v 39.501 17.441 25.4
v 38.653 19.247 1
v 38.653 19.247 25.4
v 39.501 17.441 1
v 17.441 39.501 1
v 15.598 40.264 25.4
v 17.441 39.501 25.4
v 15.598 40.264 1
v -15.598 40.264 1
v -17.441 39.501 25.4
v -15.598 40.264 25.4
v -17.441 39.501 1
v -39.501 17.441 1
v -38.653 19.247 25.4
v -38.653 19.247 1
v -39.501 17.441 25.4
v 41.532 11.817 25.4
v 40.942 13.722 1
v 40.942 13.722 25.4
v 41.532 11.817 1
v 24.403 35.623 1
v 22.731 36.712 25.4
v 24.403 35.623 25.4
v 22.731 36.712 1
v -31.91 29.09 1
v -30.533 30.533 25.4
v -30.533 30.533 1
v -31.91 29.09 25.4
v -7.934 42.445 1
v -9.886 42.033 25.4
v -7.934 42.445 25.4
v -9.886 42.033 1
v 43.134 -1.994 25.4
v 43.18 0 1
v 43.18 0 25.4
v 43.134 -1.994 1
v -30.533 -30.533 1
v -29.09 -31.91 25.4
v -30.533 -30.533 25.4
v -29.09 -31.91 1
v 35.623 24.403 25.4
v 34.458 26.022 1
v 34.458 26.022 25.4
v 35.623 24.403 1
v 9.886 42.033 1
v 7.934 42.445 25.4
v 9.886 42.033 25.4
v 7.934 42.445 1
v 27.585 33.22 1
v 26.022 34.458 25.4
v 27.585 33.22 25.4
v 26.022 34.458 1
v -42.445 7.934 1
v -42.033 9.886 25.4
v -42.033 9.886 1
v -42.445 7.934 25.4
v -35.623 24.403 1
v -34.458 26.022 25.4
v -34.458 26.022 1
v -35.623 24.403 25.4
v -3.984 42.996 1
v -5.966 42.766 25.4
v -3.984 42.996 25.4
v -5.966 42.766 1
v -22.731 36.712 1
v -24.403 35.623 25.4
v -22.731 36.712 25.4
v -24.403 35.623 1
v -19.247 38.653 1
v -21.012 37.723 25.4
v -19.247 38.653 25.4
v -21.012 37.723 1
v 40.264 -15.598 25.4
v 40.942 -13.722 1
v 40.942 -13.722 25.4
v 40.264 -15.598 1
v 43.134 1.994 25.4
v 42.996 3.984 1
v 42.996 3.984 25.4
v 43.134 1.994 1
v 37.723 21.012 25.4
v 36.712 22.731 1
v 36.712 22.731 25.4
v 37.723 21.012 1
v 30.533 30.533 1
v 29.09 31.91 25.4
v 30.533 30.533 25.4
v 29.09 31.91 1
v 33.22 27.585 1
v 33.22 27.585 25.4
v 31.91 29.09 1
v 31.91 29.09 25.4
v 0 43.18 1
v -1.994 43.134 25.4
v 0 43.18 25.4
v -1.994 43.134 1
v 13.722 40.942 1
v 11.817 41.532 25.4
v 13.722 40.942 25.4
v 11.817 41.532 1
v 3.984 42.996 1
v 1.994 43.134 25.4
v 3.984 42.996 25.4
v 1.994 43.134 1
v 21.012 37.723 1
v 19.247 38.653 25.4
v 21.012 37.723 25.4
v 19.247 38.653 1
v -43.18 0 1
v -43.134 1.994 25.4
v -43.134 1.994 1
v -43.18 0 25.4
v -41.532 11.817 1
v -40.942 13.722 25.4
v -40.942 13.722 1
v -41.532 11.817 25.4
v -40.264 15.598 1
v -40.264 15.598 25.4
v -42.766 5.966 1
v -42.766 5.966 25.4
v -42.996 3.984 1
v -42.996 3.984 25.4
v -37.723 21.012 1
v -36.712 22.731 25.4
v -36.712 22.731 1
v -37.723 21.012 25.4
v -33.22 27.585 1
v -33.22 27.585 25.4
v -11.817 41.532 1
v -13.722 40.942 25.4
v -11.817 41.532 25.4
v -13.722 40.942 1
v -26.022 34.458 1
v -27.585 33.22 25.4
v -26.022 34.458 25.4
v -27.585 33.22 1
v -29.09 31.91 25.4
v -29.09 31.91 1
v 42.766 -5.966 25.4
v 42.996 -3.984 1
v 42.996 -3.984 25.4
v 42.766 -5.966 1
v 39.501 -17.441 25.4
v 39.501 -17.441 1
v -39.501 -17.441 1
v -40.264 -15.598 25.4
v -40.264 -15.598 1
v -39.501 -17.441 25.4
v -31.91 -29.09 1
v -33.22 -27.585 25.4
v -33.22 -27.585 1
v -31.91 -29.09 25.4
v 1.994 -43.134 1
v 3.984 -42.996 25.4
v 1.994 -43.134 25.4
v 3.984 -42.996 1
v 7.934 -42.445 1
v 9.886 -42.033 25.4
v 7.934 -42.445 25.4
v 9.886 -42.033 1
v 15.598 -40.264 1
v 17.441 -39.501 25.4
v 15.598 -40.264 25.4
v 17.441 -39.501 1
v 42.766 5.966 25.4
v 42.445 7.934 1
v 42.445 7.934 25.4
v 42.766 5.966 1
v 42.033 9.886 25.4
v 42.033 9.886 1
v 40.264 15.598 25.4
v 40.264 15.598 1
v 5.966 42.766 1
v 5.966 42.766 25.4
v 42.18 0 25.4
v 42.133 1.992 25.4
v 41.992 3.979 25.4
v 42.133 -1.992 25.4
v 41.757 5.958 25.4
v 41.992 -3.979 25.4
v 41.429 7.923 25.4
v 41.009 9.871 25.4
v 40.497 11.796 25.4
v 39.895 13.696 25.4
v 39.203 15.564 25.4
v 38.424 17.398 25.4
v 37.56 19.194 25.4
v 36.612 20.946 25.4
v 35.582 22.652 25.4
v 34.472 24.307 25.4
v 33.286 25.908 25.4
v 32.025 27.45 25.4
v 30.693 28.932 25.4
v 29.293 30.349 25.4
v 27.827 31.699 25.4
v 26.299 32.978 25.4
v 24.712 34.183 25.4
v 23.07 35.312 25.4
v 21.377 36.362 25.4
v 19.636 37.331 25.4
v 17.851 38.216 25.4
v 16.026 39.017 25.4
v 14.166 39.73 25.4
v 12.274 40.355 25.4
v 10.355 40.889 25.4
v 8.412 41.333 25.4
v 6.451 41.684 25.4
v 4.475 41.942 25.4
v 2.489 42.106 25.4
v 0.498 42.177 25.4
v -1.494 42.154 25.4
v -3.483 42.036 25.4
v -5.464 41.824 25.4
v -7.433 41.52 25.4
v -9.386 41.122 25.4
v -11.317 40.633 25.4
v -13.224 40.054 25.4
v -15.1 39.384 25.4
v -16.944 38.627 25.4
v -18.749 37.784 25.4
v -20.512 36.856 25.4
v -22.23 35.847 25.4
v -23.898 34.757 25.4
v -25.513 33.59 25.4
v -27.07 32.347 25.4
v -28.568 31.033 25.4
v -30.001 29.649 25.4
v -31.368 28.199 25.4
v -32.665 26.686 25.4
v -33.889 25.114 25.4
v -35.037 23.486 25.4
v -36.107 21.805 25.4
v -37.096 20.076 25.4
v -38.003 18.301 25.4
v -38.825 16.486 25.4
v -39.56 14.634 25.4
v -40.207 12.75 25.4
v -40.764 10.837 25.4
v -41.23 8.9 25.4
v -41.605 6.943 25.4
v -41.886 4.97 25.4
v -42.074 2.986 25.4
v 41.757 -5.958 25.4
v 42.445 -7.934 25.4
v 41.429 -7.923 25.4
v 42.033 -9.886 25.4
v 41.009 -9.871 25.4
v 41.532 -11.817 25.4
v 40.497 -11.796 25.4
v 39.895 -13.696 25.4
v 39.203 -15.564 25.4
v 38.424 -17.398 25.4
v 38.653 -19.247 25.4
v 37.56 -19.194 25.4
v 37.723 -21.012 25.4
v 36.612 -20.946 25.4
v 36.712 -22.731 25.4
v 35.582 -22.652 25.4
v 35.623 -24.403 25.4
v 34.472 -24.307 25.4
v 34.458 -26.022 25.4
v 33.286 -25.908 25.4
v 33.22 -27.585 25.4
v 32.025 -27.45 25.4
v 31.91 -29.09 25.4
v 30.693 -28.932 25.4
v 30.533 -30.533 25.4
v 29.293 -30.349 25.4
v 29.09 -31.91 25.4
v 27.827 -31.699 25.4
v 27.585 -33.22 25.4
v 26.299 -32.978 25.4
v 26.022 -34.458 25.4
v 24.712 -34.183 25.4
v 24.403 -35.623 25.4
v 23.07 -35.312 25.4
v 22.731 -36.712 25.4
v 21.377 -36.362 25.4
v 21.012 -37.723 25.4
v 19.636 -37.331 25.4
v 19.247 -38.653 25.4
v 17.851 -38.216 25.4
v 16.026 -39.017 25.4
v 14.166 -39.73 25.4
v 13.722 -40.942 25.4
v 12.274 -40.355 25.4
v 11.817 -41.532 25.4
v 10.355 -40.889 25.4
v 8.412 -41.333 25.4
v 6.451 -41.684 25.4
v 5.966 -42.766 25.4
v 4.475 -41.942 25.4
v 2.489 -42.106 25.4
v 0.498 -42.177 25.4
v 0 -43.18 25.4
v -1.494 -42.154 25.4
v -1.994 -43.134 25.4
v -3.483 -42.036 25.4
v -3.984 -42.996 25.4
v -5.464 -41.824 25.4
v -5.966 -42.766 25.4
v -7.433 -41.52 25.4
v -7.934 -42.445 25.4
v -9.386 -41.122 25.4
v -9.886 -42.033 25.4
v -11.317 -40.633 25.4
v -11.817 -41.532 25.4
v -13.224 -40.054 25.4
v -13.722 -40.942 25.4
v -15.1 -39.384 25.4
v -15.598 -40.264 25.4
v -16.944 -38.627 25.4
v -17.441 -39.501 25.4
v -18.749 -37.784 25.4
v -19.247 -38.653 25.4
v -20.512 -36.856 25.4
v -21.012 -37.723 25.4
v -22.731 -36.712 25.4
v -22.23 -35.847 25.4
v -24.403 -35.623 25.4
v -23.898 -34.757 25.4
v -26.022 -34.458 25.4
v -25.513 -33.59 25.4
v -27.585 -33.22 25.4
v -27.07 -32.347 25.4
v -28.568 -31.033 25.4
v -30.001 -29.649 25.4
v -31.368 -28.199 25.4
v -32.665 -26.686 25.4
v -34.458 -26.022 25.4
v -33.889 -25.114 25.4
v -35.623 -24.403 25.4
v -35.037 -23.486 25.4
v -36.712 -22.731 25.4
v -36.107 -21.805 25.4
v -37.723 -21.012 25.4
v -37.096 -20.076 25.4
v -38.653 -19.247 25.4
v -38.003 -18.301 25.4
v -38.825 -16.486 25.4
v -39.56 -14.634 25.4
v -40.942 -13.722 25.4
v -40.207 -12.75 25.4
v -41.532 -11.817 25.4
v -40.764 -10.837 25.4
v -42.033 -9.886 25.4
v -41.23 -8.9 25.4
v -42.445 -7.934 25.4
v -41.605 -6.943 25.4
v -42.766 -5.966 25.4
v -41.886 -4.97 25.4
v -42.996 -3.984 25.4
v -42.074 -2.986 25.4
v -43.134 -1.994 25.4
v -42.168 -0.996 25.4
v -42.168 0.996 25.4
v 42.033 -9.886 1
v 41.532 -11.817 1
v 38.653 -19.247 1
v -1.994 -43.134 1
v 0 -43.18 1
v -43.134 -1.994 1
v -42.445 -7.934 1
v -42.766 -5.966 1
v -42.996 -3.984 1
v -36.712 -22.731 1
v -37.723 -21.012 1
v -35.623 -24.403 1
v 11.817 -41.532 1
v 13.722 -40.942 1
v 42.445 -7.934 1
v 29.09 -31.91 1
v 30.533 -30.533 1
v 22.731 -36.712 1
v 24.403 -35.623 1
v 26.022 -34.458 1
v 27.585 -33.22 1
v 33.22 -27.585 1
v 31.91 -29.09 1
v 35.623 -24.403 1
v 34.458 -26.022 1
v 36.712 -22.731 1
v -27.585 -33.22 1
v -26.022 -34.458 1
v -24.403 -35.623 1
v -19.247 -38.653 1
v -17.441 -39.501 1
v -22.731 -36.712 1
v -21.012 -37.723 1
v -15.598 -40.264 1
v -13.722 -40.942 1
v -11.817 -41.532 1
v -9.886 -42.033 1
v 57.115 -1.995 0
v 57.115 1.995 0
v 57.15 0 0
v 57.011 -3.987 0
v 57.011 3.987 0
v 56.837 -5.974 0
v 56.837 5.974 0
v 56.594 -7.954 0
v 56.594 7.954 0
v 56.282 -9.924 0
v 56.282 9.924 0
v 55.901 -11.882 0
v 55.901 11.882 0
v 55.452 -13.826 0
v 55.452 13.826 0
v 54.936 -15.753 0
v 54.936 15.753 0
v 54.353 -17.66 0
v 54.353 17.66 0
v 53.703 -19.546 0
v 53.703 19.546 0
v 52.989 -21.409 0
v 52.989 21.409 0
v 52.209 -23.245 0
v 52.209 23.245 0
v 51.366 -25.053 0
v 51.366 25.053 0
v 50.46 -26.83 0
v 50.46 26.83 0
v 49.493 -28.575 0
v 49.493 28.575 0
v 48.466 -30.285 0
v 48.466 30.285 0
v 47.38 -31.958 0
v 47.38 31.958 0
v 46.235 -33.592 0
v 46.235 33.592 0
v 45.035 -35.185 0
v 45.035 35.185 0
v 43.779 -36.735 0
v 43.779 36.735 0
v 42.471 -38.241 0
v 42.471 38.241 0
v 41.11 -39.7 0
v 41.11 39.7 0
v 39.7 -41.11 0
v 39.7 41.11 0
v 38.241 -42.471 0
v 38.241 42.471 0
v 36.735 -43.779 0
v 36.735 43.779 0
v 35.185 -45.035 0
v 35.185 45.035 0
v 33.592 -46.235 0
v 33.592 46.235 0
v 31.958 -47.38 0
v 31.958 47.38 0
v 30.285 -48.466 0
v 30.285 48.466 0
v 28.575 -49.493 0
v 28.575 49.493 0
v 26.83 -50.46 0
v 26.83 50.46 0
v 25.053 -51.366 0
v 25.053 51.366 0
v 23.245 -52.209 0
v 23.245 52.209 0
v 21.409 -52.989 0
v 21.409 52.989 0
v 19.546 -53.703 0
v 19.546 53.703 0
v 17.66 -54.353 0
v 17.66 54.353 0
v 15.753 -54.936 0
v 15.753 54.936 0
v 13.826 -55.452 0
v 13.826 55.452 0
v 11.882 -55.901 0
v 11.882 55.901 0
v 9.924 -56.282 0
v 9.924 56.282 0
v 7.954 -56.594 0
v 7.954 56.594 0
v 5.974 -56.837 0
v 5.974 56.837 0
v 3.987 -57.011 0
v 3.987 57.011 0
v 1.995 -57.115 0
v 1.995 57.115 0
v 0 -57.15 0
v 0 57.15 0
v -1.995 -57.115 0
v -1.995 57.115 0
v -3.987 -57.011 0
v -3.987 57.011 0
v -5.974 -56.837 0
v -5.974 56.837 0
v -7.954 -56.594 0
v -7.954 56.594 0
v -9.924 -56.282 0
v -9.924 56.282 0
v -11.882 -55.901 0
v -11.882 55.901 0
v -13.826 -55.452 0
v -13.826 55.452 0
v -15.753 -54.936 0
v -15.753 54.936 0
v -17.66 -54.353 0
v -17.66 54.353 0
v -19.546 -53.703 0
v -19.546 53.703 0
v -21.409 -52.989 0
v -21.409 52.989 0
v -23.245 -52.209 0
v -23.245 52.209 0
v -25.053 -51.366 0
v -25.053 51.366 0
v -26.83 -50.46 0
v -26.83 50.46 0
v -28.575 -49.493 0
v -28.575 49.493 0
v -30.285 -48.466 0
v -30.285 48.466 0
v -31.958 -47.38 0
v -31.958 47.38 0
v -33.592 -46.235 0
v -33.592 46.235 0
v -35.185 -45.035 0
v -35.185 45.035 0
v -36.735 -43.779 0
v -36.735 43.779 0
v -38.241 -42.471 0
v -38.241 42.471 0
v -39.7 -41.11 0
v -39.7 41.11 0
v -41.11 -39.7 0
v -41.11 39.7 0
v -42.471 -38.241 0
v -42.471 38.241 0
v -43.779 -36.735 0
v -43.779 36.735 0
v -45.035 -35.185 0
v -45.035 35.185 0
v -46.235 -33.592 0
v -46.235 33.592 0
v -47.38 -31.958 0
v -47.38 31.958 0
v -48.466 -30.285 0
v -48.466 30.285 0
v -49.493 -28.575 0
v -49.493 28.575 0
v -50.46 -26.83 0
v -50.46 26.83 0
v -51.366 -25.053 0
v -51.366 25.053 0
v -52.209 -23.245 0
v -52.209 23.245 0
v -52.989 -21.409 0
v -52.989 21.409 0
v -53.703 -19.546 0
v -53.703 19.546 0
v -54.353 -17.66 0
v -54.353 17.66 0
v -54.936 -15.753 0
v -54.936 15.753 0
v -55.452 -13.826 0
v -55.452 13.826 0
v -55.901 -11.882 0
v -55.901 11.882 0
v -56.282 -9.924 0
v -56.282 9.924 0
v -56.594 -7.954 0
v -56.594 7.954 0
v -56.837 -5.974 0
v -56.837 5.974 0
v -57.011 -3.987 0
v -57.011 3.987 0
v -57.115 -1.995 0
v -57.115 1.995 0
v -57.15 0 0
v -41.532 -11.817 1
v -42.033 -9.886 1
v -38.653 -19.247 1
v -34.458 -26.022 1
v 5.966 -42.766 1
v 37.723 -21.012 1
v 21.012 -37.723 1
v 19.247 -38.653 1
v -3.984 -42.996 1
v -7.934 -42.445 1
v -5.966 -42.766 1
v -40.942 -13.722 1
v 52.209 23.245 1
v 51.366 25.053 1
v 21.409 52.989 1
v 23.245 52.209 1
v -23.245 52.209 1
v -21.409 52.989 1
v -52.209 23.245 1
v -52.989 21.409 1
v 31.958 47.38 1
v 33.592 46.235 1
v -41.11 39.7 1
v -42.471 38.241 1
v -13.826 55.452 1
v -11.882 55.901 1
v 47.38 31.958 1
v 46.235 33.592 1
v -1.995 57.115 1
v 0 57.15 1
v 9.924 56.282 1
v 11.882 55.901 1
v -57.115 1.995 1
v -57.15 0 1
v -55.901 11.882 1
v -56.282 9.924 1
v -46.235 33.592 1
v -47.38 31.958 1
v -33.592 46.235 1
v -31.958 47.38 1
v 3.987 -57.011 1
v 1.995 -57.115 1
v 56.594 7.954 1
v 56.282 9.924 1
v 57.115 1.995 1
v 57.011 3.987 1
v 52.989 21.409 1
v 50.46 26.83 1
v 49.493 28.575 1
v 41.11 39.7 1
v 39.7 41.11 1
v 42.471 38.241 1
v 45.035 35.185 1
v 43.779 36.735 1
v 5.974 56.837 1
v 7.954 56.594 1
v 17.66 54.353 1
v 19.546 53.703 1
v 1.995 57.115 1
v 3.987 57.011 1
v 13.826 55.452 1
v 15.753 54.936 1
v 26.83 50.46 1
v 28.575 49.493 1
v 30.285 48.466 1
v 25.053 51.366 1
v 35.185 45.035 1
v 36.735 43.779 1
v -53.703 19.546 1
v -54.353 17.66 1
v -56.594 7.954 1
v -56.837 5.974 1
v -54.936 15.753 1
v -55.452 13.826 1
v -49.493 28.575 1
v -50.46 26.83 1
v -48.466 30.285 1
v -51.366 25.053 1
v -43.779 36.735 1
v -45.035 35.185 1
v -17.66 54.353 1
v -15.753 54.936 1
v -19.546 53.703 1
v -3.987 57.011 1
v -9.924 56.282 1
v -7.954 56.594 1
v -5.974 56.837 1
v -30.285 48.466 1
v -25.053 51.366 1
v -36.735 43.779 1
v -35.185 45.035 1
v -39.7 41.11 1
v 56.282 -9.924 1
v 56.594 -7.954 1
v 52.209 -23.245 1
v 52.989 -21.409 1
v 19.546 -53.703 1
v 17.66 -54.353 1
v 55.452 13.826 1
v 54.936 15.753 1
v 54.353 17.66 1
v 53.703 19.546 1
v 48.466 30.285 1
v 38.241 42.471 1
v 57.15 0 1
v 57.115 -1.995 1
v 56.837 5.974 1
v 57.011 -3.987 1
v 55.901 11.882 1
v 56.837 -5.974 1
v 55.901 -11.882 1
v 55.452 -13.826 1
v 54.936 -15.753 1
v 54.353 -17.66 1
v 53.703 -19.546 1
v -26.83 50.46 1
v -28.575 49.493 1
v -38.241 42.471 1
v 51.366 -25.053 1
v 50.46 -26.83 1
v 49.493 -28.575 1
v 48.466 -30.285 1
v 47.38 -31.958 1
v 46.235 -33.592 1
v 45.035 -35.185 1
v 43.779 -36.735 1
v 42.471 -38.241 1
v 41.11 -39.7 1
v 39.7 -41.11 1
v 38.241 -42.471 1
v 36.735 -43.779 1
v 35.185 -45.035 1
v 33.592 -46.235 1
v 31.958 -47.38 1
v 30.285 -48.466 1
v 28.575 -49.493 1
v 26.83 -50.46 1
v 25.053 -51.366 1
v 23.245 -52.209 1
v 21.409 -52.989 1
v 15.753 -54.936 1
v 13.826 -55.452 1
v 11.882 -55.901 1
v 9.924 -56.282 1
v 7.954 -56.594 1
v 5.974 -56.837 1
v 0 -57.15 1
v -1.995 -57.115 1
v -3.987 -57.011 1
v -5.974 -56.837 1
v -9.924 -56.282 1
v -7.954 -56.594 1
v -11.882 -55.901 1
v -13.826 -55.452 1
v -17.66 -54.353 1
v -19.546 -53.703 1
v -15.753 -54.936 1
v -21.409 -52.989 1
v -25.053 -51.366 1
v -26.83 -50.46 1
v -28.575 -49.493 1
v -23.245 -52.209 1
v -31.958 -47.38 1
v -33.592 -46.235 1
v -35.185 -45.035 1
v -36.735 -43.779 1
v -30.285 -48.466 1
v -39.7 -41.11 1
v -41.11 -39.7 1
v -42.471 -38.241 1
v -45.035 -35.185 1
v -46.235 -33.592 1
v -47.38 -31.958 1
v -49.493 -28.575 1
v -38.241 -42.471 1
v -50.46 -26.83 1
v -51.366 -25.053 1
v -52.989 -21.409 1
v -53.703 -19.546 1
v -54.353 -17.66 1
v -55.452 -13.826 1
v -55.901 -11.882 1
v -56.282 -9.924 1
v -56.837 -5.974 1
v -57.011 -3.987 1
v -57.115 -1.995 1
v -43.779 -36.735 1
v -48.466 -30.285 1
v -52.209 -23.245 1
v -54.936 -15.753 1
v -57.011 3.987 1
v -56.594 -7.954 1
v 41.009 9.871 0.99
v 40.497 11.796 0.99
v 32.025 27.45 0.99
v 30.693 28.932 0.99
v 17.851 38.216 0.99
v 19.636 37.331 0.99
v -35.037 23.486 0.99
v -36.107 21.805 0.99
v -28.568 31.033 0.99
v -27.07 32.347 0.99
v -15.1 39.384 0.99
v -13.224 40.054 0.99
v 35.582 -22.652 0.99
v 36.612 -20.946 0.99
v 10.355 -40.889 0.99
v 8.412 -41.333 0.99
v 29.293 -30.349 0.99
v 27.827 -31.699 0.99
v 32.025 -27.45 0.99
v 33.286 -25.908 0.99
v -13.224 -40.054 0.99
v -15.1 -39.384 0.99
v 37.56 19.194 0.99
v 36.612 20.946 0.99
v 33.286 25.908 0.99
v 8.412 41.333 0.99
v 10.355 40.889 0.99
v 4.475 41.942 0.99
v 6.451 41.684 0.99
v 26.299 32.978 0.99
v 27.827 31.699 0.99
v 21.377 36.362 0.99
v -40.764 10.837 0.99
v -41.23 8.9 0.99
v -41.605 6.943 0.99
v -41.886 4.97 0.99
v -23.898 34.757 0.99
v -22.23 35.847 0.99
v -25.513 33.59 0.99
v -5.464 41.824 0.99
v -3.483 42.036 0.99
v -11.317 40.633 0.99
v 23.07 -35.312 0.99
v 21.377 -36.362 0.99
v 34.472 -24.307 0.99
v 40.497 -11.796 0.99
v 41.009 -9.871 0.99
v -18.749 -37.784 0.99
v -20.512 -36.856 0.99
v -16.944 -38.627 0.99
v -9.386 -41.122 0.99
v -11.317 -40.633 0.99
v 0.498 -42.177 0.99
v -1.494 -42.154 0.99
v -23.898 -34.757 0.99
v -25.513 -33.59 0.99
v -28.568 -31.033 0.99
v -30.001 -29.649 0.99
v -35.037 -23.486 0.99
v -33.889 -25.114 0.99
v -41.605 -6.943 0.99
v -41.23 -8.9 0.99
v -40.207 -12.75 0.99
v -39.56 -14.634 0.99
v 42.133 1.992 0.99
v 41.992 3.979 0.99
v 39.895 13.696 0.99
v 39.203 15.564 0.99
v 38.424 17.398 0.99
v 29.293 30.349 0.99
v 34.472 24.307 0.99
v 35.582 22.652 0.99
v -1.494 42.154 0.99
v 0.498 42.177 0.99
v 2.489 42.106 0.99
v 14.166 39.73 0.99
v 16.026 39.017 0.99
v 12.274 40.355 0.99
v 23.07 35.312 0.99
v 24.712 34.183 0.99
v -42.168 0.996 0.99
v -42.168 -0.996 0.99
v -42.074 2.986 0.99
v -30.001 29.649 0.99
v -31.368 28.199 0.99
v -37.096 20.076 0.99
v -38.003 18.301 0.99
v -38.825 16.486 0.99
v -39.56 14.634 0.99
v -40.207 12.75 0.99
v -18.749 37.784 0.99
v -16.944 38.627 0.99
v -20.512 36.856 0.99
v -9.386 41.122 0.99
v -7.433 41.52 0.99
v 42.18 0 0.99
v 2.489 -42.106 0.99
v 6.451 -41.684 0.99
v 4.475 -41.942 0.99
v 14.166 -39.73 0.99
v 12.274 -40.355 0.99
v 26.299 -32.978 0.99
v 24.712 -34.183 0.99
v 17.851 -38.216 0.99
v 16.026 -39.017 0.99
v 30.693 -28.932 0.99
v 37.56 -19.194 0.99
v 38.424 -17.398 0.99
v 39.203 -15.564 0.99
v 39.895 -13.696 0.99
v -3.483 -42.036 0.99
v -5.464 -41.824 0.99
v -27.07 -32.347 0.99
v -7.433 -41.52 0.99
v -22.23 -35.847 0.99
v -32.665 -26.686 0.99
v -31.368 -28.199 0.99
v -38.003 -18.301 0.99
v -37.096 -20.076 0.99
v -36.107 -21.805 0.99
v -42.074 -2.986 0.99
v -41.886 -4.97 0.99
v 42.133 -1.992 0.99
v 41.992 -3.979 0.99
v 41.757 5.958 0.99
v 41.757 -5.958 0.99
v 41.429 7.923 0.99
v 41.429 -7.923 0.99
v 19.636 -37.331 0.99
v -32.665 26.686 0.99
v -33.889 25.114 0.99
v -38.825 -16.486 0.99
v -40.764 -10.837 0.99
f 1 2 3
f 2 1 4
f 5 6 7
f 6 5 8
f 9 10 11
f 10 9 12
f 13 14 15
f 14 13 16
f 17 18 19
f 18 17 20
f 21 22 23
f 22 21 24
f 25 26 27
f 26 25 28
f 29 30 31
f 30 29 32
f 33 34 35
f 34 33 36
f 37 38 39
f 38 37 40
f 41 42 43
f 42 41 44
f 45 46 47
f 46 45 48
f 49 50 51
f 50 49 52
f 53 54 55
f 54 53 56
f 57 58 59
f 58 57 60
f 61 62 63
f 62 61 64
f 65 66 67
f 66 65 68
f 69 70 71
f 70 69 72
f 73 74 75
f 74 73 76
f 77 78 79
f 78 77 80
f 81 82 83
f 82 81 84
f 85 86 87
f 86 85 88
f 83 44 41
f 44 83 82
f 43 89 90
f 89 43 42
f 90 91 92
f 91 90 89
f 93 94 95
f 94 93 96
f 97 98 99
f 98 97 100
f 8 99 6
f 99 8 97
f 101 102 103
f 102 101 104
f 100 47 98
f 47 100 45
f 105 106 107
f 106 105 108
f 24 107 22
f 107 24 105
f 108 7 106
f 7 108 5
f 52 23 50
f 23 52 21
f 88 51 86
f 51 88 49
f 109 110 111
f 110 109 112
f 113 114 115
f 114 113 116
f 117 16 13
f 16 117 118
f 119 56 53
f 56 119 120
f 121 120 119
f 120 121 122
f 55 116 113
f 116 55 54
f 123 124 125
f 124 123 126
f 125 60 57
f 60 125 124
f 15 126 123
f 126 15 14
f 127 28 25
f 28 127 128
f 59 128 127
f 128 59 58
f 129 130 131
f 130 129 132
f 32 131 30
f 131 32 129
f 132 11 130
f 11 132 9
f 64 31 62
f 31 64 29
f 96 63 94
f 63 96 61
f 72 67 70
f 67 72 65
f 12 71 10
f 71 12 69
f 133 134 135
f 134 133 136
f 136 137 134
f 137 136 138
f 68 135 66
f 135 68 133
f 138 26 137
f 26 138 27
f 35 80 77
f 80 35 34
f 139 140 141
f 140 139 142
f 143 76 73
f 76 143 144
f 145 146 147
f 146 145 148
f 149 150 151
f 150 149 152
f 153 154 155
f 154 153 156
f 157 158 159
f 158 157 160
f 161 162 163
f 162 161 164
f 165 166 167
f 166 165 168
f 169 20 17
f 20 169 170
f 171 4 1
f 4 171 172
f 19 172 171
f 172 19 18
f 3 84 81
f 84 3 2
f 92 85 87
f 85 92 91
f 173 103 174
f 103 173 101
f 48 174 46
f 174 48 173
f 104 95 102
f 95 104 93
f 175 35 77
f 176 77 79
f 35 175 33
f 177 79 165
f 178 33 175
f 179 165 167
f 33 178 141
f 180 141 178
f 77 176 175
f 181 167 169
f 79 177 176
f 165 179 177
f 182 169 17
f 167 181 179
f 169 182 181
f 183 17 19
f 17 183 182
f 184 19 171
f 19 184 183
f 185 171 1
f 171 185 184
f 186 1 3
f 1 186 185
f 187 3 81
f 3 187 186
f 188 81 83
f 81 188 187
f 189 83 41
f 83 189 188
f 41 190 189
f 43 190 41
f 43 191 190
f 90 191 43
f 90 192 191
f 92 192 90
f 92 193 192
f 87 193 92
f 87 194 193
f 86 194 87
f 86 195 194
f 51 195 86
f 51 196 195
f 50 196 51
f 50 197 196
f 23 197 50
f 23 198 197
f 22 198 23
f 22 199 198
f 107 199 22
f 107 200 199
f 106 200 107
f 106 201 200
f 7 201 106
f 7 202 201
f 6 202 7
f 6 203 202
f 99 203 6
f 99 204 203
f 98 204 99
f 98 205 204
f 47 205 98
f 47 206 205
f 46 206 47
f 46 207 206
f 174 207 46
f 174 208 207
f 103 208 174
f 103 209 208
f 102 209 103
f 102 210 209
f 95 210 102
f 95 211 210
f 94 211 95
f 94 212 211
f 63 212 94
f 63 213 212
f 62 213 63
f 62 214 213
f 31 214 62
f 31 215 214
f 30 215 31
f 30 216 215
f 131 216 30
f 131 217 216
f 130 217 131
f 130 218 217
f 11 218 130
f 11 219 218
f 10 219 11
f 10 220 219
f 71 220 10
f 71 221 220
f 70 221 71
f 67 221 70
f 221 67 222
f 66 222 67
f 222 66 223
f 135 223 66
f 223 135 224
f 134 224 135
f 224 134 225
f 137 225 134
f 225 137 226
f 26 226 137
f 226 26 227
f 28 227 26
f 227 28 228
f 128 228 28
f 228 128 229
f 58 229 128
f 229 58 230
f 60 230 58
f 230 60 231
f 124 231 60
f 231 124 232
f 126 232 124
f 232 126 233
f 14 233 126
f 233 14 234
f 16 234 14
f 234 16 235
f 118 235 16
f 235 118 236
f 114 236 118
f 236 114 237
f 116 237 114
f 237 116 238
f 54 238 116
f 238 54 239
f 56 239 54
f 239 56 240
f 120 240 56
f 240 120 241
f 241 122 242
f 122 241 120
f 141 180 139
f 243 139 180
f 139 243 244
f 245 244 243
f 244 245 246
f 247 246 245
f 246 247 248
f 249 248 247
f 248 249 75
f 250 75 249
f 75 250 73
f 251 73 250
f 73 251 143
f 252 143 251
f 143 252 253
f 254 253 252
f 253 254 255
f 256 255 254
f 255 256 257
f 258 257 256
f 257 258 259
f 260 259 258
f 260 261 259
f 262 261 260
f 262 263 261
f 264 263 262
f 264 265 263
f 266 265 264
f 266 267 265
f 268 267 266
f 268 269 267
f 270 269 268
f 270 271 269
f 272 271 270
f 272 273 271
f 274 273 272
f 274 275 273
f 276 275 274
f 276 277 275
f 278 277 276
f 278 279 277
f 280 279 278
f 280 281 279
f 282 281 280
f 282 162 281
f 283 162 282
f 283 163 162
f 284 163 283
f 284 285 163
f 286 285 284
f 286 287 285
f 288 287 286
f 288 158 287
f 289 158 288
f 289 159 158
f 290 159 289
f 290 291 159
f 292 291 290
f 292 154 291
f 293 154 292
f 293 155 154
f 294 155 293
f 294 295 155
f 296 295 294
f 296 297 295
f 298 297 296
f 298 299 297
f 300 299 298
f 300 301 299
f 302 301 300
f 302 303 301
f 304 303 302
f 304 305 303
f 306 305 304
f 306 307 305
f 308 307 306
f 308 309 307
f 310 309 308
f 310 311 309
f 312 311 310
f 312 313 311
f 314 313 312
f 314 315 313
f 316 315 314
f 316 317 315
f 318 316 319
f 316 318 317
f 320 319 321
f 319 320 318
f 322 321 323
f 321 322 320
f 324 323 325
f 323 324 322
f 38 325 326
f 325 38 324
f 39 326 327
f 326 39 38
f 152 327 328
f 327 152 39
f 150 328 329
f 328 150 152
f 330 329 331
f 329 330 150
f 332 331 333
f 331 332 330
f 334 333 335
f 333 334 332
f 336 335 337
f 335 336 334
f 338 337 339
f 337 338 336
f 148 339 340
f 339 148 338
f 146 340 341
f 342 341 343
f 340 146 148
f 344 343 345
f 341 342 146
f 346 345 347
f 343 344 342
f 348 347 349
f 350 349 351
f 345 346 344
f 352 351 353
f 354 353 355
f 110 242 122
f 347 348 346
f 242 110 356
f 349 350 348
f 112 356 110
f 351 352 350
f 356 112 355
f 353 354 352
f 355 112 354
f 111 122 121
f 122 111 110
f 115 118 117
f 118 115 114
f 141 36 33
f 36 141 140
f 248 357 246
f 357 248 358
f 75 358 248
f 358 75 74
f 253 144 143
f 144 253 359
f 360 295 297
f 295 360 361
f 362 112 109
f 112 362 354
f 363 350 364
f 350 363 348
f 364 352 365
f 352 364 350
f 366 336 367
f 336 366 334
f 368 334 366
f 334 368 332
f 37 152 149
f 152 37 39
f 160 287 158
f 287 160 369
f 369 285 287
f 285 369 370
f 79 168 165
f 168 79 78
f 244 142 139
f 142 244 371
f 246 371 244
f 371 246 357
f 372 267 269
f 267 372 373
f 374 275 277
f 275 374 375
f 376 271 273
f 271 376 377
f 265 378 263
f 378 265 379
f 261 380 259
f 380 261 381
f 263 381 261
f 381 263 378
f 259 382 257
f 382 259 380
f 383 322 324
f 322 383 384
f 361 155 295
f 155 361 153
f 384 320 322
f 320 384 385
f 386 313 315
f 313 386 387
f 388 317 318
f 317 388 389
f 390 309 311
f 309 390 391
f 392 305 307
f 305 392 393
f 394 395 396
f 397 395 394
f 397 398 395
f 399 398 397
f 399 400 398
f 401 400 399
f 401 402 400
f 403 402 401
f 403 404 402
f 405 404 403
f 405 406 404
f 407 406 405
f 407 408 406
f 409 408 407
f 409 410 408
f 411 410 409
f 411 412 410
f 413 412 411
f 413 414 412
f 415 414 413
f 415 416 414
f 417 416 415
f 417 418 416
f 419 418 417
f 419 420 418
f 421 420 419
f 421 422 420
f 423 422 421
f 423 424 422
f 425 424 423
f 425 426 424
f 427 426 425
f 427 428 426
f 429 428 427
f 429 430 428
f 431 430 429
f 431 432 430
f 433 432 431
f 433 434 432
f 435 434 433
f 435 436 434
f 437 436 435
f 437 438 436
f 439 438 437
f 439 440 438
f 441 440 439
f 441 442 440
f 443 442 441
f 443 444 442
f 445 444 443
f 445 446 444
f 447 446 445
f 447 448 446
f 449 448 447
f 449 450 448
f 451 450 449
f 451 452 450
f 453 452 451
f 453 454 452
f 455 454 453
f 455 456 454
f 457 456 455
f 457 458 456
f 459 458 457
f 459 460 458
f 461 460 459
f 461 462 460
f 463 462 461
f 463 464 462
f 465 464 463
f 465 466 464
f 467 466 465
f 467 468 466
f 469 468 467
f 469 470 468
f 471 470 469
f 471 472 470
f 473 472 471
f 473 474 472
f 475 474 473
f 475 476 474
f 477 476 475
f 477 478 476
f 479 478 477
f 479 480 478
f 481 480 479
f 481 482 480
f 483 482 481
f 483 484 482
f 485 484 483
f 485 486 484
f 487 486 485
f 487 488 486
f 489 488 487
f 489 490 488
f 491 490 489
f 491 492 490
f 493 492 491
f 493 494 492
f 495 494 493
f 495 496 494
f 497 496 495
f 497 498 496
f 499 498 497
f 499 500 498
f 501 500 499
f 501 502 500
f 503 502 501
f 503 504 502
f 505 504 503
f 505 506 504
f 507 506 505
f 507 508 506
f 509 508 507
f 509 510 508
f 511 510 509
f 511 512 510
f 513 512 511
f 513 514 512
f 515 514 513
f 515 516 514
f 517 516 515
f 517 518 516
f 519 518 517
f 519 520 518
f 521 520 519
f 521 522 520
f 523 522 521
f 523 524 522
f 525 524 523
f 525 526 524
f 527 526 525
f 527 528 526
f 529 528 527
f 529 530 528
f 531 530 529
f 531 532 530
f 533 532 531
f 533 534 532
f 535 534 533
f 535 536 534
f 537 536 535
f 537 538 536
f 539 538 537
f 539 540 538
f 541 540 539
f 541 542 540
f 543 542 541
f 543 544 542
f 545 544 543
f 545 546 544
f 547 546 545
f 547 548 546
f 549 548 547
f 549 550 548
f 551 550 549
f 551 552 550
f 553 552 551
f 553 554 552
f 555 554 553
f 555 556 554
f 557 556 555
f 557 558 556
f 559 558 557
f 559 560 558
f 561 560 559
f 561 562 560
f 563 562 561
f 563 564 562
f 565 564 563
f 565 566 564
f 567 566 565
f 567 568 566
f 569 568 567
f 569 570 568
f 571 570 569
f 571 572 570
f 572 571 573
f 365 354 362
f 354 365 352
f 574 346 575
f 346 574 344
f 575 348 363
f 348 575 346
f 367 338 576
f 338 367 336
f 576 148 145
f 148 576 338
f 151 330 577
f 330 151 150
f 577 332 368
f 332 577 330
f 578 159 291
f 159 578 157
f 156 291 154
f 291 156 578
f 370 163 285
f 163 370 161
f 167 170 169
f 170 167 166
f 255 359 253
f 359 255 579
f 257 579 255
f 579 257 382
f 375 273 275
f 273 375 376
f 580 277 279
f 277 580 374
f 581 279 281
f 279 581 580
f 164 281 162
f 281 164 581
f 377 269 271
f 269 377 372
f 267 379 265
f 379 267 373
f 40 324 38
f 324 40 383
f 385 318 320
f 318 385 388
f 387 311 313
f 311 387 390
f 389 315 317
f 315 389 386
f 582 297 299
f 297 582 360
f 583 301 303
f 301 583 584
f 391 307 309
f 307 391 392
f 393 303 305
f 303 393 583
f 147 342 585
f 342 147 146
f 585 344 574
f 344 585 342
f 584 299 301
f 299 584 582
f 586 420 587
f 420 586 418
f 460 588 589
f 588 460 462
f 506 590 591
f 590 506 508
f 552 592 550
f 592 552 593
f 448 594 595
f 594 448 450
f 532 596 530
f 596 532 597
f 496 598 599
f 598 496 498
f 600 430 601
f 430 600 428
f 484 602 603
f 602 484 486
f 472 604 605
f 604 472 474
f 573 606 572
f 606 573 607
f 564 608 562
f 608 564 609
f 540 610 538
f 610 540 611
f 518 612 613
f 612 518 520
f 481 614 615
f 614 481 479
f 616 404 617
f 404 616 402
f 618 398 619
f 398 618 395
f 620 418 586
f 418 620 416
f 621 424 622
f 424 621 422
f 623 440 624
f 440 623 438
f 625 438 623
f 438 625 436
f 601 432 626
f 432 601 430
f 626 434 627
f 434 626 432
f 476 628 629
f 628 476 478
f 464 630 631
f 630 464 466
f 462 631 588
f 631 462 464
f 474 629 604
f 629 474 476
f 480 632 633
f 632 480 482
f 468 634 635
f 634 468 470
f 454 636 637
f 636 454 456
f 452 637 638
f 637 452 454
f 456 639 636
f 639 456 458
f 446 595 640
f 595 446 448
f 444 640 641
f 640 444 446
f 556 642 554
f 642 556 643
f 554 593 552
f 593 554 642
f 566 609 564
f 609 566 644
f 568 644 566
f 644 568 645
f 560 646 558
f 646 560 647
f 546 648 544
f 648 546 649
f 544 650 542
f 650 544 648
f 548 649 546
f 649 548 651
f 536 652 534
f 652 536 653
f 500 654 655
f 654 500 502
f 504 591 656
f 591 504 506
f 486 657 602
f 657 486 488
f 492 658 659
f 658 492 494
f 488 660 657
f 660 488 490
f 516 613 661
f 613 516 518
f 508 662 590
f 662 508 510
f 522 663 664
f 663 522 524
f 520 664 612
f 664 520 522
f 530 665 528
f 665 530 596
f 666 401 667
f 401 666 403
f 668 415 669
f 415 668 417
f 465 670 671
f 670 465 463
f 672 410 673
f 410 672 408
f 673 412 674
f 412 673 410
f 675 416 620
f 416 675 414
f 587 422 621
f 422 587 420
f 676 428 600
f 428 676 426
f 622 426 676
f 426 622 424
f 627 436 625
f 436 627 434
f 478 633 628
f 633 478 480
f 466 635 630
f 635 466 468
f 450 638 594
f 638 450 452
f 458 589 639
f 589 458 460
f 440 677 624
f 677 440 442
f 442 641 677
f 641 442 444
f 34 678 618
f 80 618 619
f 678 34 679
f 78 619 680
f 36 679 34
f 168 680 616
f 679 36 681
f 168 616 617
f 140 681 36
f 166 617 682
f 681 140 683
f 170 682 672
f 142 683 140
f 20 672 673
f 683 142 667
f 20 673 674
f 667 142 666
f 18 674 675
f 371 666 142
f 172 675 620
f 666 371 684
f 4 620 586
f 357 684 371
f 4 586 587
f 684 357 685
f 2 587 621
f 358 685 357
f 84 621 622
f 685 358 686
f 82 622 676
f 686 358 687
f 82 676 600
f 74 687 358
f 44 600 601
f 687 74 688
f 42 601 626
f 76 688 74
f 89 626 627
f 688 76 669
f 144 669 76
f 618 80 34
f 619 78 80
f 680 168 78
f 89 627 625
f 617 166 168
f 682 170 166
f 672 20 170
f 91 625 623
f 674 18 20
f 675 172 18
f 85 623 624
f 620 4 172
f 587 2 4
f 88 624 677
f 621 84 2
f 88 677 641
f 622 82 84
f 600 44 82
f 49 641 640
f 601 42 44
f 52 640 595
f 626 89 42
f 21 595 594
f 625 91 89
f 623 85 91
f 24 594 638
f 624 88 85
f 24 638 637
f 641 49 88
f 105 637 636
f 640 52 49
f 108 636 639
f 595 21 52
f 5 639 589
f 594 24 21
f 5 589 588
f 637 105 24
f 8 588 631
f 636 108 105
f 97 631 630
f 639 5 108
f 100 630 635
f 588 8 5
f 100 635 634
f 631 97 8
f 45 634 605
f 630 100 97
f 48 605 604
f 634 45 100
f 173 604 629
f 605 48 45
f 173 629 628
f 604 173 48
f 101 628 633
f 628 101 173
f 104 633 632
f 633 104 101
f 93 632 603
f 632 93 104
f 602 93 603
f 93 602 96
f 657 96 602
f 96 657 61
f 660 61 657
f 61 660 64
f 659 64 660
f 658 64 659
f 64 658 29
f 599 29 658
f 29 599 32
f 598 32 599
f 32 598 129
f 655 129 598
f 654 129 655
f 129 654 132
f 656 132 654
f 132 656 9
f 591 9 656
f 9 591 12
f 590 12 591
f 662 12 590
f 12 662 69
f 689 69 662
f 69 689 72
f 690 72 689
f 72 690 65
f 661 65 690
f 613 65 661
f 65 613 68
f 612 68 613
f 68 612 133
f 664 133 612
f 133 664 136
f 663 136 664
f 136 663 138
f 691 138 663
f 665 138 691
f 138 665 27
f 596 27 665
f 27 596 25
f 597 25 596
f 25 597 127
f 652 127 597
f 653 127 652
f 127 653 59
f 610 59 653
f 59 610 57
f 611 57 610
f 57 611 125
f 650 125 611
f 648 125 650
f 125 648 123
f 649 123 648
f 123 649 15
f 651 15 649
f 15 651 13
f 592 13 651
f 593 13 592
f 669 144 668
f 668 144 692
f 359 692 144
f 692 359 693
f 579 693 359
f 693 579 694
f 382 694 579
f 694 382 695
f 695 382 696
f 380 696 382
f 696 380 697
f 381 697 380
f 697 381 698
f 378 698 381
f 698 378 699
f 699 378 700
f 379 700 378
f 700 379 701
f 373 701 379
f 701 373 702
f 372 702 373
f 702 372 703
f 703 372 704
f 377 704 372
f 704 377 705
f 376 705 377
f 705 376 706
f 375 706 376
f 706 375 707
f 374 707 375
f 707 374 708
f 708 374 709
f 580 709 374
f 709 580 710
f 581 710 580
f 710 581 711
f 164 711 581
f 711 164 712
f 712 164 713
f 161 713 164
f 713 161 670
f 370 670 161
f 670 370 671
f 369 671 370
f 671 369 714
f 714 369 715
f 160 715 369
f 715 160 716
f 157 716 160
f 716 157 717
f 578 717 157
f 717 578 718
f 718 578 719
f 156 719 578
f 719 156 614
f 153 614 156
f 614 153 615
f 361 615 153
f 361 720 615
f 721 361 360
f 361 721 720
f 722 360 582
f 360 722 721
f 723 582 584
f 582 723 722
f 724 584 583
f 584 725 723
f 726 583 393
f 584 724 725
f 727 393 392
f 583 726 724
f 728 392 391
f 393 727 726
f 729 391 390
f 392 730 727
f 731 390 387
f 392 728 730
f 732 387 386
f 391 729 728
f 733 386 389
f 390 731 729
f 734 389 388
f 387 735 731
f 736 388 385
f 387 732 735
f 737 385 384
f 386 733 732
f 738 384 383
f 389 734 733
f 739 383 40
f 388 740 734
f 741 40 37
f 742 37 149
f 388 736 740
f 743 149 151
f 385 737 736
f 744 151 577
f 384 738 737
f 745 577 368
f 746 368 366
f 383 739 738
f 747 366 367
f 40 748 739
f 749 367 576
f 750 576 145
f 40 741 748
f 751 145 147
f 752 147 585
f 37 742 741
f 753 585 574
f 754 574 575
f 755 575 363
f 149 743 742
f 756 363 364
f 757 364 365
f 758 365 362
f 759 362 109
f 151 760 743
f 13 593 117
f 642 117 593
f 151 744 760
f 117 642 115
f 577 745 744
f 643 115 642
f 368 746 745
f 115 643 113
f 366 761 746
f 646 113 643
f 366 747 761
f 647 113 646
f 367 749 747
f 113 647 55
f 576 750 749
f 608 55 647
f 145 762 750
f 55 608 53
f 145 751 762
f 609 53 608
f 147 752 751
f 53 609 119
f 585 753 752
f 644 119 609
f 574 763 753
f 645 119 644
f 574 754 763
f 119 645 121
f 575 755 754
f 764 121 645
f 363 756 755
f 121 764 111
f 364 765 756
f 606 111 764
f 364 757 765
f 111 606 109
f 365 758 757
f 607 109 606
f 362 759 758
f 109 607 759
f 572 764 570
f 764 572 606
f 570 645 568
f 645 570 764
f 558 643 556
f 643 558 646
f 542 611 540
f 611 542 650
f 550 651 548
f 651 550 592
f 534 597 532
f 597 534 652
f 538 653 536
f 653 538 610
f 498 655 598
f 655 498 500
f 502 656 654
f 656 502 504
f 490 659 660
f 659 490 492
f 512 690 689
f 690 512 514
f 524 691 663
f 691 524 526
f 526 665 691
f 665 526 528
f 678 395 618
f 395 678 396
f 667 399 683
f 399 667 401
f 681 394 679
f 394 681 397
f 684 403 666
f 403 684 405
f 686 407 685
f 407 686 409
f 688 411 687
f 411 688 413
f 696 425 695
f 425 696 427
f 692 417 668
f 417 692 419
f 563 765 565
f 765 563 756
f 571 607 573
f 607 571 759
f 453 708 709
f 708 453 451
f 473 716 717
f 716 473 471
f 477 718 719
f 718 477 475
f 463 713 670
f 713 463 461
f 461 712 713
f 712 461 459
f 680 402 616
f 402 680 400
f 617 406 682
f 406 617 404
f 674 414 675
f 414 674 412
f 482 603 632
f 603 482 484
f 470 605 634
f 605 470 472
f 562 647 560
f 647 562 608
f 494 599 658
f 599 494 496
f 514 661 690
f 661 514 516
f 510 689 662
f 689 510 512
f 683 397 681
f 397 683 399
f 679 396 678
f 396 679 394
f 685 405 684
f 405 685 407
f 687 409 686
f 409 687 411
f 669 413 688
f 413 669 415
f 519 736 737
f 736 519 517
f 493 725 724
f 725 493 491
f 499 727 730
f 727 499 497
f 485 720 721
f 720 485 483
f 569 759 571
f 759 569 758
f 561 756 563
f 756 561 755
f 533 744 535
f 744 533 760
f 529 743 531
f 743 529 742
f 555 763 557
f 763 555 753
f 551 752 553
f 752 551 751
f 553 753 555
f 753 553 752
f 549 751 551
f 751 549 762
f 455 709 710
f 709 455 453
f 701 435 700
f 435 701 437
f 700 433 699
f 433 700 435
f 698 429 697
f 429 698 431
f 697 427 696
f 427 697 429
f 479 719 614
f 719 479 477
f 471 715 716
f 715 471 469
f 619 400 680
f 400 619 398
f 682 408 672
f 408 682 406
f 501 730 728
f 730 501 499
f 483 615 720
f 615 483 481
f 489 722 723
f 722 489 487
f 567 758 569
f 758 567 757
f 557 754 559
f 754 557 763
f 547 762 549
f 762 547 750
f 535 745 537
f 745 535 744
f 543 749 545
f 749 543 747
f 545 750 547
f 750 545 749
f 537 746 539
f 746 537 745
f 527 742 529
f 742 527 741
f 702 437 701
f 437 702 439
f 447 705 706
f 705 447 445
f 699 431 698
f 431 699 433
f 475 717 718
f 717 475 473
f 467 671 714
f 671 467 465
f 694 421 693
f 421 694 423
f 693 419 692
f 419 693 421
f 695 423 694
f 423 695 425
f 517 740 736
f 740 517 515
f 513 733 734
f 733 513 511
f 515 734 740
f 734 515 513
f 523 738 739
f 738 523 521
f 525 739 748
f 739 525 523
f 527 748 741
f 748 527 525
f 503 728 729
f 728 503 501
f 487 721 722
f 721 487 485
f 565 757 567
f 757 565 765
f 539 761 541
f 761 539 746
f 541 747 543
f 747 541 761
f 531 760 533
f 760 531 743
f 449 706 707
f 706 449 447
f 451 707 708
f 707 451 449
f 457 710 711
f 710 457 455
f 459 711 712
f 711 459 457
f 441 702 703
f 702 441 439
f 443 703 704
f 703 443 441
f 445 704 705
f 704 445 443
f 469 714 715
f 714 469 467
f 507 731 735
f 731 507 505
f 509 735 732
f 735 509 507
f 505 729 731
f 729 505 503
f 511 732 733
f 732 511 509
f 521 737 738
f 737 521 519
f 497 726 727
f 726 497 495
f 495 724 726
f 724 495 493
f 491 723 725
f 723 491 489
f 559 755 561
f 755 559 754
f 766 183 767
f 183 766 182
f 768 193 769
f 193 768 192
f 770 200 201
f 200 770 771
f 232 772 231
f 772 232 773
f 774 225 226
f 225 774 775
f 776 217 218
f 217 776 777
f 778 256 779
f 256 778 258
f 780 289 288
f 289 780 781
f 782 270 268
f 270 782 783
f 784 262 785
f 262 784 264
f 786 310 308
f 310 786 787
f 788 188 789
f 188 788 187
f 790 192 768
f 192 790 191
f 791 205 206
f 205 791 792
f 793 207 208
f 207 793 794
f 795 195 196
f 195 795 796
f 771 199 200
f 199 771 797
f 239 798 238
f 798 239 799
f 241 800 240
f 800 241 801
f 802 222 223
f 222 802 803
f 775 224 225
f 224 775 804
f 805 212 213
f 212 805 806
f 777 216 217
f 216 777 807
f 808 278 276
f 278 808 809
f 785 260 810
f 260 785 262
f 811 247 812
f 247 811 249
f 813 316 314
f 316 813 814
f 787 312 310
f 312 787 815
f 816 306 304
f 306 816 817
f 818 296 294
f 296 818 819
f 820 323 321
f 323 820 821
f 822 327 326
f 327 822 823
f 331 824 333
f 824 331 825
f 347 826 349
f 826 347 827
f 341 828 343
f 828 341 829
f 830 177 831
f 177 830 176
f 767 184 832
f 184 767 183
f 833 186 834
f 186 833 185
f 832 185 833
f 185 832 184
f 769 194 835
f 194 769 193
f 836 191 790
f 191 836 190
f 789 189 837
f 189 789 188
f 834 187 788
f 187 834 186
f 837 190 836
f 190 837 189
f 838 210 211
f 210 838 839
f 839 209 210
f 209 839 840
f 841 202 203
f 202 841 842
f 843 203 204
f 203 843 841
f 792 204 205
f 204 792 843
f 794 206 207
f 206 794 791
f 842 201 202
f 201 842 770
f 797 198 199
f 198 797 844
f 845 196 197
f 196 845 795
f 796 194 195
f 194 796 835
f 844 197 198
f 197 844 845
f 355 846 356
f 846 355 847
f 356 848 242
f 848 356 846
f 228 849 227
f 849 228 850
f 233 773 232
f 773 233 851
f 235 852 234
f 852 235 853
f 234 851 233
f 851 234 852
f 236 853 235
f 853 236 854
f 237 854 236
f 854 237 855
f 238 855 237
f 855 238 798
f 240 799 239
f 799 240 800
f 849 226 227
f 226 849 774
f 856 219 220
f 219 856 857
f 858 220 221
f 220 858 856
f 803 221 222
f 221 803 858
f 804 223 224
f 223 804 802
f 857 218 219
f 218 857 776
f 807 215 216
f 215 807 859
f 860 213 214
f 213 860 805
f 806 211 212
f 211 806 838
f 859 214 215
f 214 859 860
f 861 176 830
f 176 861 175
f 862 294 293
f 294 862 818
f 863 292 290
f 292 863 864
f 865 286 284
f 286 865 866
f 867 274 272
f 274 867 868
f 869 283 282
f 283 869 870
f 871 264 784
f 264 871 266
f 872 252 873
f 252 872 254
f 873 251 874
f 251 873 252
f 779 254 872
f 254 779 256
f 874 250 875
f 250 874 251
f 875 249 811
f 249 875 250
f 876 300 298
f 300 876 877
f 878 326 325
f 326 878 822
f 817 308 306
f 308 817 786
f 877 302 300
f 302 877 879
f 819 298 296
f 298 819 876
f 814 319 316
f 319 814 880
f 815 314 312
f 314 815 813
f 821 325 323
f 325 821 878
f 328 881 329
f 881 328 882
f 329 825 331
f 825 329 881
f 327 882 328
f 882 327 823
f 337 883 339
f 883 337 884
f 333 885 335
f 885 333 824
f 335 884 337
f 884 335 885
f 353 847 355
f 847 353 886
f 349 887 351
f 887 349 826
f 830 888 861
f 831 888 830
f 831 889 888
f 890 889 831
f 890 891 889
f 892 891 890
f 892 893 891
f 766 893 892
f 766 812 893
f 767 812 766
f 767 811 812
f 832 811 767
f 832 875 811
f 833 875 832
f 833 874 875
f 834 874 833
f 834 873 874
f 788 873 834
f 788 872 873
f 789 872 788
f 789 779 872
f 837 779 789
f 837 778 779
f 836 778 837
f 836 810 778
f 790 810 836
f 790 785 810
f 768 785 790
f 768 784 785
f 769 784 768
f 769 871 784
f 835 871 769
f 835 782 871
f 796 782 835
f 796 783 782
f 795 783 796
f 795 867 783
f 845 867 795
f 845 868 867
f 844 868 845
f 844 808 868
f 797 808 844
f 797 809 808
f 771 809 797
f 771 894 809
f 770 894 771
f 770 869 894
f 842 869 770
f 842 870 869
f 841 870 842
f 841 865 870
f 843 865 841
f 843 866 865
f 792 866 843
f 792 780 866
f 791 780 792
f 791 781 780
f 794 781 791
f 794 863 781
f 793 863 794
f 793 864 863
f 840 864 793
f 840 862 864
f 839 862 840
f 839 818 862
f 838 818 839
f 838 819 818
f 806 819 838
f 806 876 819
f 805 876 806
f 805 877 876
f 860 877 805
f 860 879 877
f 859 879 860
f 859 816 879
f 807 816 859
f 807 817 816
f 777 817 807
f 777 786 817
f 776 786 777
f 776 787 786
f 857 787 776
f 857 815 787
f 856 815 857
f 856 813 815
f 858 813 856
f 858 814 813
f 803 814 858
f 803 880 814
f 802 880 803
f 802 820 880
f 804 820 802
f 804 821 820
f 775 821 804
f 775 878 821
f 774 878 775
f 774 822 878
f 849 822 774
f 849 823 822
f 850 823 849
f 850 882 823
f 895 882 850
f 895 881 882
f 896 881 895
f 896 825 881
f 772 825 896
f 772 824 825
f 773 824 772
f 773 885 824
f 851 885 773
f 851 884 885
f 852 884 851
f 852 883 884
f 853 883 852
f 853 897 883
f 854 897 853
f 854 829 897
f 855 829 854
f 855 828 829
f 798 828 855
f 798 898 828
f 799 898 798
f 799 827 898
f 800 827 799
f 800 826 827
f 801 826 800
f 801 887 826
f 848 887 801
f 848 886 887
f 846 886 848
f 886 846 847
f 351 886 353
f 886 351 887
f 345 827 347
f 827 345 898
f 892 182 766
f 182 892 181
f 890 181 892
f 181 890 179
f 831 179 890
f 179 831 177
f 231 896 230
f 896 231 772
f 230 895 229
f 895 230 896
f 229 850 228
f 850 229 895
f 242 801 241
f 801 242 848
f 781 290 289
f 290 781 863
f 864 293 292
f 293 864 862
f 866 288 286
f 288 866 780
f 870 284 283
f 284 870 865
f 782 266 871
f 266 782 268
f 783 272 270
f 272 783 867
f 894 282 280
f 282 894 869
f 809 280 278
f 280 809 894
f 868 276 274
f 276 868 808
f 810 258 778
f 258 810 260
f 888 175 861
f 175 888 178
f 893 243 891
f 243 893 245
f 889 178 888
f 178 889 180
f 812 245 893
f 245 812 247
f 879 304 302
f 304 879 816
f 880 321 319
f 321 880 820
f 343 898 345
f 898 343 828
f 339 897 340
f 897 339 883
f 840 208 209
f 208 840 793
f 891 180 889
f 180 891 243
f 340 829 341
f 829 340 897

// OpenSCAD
include <MCAD/units.scad>;

HOLE_DIAMETER = 3.4 * inch;
LIP_DIAMETER  = 4.5 * inch;
THICKNESS     = 1 * mm;
HEIGHT        = 1 * inch;
OVERLAP       = 0.01 * mm;

$fa=1;


difference() {
    union() {
        cylinder(d=HOLE_DIAMETER,h=HEIGHT);
        cylinder(d=LIP_DIAMETER,h=THICKNESS);
    }
    translate( [0,0,THICKNESS-OVERLAP] )
        cylinder(d=HOLE_DIAMETER-2*THICKNESS,h=HEIGHT+OVERLAP);
}
